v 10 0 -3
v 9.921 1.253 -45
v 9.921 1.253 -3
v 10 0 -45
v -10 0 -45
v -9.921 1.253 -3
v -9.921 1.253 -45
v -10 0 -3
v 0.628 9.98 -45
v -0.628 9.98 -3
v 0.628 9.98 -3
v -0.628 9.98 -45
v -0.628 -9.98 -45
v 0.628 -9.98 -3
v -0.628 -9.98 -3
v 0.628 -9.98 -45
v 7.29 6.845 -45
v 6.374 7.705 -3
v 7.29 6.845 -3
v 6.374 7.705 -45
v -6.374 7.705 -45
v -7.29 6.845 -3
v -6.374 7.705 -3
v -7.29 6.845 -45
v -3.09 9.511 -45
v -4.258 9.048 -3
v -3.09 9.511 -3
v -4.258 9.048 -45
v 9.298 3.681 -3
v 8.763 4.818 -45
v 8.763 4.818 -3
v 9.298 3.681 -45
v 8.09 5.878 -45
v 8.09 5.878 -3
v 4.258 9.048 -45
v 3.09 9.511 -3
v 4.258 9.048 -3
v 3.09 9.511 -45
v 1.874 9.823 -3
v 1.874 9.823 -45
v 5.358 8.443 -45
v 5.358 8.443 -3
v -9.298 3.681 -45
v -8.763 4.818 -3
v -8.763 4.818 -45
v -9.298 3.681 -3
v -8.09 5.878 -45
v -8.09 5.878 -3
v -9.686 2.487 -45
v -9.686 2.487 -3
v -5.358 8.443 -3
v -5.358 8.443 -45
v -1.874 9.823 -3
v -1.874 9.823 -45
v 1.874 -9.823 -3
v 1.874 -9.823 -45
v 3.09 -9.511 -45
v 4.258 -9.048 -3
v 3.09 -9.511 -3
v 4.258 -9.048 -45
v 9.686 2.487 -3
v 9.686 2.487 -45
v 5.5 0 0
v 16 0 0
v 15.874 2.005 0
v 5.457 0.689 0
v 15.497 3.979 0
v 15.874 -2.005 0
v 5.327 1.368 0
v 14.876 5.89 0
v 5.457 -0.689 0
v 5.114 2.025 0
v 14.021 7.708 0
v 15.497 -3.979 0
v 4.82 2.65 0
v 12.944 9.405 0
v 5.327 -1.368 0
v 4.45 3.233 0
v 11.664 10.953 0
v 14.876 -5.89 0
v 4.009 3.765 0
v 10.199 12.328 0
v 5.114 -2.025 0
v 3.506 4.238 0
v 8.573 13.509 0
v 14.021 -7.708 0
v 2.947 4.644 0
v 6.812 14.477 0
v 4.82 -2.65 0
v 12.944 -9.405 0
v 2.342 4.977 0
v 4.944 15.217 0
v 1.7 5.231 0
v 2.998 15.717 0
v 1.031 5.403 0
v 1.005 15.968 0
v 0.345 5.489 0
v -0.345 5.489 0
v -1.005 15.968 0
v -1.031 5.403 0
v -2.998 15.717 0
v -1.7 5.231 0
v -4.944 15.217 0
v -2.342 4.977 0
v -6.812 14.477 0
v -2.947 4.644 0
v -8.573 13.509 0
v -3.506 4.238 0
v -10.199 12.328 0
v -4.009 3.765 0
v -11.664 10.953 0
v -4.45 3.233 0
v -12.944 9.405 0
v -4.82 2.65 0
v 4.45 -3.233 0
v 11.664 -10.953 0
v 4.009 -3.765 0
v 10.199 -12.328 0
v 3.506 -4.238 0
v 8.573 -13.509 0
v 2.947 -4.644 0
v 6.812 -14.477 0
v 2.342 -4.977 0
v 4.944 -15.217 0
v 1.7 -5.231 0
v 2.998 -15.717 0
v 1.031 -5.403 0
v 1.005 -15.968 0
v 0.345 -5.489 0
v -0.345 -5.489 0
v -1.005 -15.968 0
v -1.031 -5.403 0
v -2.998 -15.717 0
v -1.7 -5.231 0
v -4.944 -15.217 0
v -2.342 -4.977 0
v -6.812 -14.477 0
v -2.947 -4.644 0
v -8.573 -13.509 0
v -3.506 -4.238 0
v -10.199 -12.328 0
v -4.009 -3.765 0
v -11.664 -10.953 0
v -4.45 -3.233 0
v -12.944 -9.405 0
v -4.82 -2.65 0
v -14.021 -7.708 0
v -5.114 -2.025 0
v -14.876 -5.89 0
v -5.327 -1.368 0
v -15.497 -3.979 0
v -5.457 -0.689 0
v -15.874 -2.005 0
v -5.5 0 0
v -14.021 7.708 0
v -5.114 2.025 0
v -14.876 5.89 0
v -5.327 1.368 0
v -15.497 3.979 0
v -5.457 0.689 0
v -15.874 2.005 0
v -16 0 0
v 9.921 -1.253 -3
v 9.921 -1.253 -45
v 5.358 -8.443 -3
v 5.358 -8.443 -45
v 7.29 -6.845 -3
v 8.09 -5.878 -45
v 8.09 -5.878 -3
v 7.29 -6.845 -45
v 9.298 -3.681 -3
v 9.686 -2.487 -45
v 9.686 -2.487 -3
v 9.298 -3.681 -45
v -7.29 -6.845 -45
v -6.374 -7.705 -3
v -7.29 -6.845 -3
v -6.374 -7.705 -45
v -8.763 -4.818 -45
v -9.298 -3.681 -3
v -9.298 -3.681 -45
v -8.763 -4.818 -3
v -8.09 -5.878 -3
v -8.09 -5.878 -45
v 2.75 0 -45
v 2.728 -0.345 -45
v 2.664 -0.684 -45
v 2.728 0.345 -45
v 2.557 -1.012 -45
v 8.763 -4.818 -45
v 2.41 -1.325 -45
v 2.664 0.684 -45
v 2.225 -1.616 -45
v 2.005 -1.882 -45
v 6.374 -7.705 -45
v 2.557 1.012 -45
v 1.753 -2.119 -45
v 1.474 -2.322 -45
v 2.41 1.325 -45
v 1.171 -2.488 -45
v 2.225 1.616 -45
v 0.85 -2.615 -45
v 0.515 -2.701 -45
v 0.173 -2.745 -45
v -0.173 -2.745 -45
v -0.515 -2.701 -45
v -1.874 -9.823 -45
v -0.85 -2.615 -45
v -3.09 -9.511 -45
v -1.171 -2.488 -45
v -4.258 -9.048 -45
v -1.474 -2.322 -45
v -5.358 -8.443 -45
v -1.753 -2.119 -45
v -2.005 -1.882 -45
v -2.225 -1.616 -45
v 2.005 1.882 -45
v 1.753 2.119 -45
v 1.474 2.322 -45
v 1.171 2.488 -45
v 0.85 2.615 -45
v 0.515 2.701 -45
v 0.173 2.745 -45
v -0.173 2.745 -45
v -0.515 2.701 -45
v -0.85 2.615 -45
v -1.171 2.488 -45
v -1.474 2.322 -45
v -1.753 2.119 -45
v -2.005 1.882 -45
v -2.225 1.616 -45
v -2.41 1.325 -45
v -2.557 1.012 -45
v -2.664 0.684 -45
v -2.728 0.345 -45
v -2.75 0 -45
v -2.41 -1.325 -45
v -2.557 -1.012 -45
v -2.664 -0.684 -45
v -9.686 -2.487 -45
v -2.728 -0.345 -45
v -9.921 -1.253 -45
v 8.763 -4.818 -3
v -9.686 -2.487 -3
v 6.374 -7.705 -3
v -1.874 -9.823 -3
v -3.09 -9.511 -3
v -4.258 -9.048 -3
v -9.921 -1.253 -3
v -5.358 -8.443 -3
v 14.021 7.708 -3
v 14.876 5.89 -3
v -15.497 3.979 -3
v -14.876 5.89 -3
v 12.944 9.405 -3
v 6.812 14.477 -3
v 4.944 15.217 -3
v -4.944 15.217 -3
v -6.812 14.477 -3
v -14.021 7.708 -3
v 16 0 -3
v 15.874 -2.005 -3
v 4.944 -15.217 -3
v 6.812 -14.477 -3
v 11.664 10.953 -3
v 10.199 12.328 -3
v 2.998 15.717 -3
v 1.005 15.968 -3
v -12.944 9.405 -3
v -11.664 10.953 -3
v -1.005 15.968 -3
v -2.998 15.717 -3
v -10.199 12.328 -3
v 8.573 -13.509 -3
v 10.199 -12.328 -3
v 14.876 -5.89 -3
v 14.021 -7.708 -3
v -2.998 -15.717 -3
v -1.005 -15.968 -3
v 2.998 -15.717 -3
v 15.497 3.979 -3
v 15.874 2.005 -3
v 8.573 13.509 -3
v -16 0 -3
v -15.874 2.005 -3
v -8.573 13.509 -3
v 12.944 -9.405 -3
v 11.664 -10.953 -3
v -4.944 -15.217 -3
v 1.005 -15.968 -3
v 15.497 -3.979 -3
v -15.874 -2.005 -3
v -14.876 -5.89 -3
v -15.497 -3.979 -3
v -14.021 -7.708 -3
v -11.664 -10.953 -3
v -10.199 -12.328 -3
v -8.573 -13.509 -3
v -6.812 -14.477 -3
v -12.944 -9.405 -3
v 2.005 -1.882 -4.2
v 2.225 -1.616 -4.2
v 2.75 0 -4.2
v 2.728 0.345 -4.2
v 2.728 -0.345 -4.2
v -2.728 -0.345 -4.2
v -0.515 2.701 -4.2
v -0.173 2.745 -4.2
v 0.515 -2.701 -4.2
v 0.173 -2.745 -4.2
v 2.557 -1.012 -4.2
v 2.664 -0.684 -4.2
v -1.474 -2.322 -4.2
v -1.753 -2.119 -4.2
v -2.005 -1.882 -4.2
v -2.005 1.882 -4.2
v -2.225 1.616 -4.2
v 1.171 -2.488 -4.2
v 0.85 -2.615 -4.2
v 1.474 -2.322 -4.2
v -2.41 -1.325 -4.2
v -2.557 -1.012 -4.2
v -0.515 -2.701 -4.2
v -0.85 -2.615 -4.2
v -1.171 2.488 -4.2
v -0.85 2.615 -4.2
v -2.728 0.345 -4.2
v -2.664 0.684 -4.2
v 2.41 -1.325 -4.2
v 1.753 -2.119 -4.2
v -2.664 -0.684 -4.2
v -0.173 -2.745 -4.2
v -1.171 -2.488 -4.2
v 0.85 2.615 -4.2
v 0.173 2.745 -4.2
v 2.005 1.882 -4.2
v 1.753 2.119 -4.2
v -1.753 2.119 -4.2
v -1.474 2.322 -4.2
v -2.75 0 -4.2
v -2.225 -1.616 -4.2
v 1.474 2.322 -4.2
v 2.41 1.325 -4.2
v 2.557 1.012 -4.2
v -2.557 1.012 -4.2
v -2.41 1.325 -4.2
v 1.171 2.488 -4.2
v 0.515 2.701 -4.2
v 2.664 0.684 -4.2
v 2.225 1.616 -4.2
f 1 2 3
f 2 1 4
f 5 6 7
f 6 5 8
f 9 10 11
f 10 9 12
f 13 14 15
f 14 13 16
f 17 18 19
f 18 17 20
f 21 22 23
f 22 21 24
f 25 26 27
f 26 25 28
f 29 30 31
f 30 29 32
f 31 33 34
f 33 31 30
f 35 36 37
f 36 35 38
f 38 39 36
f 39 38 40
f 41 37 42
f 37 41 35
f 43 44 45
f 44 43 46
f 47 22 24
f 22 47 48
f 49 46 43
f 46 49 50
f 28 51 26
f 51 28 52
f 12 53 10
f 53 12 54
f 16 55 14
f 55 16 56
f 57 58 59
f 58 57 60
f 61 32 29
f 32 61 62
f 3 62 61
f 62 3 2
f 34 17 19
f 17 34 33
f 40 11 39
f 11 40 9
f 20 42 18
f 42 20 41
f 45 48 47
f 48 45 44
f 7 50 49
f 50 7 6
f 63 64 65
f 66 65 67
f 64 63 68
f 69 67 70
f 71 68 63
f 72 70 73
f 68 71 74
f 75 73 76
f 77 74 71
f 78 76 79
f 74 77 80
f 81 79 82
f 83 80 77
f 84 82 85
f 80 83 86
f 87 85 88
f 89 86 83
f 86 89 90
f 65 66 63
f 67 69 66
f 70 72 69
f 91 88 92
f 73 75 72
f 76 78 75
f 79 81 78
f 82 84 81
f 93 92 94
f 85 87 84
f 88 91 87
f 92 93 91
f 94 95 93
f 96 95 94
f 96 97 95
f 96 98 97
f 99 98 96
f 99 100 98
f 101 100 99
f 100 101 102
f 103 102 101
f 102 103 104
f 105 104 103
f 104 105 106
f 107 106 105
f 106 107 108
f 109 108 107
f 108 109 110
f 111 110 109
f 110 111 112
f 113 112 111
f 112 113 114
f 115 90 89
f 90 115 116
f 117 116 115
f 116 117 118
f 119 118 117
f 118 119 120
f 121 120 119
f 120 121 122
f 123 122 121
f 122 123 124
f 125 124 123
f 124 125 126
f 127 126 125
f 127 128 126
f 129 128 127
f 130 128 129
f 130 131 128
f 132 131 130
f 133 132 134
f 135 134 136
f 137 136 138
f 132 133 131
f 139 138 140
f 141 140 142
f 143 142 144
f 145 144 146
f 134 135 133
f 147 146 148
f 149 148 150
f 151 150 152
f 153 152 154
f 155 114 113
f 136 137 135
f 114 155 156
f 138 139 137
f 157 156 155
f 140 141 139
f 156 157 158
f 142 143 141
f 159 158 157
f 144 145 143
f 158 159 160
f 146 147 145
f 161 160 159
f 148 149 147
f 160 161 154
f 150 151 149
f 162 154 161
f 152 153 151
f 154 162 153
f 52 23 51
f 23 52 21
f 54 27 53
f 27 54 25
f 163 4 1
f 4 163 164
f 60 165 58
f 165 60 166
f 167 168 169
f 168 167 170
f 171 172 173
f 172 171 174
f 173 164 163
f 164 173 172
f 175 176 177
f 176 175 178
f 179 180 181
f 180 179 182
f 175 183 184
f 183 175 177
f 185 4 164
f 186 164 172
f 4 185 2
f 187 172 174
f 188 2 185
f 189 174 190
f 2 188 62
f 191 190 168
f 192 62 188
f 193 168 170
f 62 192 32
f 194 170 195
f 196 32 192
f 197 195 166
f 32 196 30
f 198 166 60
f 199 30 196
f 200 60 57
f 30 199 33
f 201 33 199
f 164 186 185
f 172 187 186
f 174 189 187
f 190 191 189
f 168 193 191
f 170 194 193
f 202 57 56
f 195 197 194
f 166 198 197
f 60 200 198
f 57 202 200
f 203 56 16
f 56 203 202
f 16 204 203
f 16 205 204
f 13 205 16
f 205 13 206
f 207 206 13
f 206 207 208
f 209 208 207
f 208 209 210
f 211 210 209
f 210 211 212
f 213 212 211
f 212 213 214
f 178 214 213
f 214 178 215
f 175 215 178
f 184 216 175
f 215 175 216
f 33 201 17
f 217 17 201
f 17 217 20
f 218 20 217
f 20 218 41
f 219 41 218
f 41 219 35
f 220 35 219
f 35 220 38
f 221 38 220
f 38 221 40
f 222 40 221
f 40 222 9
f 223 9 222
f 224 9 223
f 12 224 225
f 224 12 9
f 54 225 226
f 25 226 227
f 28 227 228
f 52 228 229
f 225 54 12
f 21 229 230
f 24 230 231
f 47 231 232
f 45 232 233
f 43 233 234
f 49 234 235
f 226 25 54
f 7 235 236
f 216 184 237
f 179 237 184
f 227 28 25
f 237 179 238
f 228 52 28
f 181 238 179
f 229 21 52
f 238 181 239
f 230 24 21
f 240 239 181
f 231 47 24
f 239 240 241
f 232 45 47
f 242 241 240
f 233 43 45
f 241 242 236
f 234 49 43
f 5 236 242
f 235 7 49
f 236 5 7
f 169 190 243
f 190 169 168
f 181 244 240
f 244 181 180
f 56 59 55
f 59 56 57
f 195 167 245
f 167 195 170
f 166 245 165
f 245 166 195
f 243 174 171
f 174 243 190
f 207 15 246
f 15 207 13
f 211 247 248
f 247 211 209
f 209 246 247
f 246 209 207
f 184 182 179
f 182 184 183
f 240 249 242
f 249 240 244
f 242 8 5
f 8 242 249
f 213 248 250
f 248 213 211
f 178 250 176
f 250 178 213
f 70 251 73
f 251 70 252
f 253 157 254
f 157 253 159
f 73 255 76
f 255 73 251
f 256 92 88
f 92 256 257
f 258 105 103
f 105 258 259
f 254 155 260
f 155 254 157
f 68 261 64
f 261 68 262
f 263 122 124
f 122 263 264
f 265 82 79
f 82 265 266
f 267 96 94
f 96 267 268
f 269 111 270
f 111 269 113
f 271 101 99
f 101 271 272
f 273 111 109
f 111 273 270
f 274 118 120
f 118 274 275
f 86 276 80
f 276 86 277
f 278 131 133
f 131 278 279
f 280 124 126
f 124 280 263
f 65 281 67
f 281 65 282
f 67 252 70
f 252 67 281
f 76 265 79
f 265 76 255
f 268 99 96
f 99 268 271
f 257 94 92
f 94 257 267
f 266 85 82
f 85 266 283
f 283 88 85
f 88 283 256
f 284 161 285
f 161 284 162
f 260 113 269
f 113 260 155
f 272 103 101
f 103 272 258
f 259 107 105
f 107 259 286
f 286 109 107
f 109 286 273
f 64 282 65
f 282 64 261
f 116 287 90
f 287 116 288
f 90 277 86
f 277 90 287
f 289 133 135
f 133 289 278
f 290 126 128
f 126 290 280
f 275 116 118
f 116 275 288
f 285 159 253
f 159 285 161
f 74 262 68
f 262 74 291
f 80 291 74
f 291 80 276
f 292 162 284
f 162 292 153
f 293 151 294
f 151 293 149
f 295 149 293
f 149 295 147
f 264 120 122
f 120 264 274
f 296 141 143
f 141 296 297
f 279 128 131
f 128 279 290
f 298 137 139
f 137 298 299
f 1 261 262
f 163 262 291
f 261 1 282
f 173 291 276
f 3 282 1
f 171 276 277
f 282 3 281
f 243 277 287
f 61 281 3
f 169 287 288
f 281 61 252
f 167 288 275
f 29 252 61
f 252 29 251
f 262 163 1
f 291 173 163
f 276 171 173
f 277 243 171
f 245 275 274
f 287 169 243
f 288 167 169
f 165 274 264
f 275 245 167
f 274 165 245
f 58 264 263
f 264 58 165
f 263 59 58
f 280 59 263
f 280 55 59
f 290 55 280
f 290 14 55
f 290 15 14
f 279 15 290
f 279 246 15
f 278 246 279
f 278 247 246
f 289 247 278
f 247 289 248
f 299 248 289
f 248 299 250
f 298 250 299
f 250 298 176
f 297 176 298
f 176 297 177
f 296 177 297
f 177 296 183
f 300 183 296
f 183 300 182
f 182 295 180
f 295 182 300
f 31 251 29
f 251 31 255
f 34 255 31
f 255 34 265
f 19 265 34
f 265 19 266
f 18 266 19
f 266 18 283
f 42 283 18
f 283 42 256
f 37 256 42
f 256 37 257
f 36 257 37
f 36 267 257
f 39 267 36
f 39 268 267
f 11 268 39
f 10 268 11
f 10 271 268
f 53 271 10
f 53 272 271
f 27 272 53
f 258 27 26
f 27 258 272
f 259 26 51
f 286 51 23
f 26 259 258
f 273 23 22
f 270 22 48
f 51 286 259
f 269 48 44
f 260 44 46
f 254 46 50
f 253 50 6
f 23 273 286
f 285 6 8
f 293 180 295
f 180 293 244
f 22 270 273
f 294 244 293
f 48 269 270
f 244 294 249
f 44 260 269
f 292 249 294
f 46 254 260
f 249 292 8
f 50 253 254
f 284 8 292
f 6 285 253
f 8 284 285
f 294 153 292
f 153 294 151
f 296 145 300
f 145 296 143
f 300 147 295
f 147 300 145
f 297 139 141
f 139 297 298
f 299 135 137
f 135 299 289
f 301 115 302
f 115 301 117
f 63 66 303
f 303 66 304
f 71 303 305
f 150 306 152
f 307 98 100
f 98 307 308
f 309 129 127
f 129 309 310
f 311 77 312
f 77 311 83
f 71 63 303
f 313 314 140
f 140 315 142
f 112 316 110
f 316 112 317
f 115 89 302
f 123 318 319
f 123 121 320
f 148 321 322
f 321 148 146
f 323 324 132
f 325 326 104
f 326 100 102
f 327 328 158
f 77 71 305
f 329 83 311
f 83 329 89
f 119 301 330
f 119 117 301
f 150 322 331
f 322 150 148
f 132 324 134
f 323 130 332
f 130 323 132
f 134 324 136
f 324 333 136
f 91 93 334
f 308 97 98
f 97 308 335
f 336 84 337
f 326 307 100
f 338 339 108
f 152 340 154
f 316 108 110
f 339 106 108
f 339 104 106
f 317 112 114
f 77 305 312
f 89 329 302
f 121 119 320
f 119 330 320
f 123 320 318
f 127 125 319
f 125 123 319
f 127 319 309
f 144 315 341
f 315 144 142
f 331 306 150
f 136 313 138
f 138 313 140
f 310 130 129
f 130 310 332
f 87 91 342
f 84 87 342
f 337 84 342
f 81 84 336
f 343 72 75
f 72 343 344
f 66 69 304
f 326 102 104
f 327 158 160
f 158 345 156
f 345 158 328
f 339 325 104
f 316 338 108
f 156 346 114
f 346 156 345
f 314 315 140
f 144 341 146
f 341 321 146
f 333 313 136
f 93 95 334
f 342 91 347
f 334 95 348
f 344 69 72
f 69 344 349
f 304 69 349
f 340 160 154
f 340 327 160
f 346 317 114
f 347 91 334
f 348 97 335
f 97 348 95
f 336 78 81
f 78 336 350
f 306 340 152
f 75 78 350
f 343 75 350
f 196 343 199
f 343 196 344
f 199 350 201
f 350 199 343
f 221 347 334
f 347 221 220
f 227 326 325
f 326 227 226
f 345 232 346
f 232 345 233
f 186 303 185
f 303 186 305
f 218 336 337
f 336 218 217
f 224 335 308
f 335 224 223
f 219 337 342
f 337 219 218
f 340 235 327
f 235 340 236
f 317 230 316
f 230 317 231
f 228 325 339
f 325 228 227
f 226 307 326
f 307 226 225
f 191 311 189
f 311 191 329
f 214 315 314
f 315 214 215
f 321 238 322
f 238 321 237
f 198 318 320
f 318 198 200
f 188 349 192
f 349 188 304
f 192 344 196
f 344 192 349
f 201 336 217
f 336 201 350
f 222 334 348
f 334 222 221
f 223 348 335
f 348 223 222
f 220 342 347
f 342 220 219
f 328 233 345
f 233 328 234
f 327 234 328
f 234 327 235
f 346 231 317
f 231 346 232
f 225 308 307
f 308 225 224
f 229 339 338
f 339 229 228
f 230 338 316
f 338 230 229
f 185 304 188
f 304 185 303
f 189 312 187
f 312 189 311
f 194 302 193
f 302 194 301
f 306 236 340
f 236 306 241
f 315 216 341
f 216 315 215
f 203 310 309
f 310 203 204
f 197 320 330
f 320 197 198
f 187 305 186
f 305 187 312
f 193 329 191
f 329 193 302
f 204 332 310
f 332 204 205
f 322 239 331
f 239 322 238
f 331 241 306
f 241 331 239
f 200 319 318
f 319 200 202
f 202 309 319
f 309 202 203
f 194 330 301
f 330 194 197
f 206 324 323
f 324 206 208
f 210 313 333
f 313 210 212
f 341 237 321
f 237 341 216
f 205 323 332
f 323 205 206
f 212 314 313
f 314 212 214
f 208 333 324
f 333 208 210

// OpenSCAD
$fn = 50;


difference() {
	union() {
		translate(v = [0, 0, -45.0000000000]) {
			cylinder(h = 45, r = 10.0000000000);
		}
		translate(v = [0, 0, -3.0000000000]) {
			cylinder(h = 3, r = 16.0000000000);
		}
	}
	union() {
		translate(v = [0, 0, 0]) {
			rotate(a = [0, 0, 0]) {
				difference() {
					union() {
						#translate(v = [0, 0, -45.0000000000]) {
							cylinder(h = 45, r = 2.2500000000);
						}
						#translate(v = [0, 0, -4.2000000000]) {
							cylinder(h = 4.2000000000, r = 10.0000000000, r1 = 2.7500000000, r2 = 5.5000000000);
						}
						#translate(v = [0, 0, -45.0000000000]) {
							cylinder(h = 45, r = 2.7500000000);
						}
						#translate(v = [0, 0, -45.0000000000]) {
							cylinder(h = 45, r = 2.2500000000);
						}
					}
					union();
				}
			}
		}
	}
}
